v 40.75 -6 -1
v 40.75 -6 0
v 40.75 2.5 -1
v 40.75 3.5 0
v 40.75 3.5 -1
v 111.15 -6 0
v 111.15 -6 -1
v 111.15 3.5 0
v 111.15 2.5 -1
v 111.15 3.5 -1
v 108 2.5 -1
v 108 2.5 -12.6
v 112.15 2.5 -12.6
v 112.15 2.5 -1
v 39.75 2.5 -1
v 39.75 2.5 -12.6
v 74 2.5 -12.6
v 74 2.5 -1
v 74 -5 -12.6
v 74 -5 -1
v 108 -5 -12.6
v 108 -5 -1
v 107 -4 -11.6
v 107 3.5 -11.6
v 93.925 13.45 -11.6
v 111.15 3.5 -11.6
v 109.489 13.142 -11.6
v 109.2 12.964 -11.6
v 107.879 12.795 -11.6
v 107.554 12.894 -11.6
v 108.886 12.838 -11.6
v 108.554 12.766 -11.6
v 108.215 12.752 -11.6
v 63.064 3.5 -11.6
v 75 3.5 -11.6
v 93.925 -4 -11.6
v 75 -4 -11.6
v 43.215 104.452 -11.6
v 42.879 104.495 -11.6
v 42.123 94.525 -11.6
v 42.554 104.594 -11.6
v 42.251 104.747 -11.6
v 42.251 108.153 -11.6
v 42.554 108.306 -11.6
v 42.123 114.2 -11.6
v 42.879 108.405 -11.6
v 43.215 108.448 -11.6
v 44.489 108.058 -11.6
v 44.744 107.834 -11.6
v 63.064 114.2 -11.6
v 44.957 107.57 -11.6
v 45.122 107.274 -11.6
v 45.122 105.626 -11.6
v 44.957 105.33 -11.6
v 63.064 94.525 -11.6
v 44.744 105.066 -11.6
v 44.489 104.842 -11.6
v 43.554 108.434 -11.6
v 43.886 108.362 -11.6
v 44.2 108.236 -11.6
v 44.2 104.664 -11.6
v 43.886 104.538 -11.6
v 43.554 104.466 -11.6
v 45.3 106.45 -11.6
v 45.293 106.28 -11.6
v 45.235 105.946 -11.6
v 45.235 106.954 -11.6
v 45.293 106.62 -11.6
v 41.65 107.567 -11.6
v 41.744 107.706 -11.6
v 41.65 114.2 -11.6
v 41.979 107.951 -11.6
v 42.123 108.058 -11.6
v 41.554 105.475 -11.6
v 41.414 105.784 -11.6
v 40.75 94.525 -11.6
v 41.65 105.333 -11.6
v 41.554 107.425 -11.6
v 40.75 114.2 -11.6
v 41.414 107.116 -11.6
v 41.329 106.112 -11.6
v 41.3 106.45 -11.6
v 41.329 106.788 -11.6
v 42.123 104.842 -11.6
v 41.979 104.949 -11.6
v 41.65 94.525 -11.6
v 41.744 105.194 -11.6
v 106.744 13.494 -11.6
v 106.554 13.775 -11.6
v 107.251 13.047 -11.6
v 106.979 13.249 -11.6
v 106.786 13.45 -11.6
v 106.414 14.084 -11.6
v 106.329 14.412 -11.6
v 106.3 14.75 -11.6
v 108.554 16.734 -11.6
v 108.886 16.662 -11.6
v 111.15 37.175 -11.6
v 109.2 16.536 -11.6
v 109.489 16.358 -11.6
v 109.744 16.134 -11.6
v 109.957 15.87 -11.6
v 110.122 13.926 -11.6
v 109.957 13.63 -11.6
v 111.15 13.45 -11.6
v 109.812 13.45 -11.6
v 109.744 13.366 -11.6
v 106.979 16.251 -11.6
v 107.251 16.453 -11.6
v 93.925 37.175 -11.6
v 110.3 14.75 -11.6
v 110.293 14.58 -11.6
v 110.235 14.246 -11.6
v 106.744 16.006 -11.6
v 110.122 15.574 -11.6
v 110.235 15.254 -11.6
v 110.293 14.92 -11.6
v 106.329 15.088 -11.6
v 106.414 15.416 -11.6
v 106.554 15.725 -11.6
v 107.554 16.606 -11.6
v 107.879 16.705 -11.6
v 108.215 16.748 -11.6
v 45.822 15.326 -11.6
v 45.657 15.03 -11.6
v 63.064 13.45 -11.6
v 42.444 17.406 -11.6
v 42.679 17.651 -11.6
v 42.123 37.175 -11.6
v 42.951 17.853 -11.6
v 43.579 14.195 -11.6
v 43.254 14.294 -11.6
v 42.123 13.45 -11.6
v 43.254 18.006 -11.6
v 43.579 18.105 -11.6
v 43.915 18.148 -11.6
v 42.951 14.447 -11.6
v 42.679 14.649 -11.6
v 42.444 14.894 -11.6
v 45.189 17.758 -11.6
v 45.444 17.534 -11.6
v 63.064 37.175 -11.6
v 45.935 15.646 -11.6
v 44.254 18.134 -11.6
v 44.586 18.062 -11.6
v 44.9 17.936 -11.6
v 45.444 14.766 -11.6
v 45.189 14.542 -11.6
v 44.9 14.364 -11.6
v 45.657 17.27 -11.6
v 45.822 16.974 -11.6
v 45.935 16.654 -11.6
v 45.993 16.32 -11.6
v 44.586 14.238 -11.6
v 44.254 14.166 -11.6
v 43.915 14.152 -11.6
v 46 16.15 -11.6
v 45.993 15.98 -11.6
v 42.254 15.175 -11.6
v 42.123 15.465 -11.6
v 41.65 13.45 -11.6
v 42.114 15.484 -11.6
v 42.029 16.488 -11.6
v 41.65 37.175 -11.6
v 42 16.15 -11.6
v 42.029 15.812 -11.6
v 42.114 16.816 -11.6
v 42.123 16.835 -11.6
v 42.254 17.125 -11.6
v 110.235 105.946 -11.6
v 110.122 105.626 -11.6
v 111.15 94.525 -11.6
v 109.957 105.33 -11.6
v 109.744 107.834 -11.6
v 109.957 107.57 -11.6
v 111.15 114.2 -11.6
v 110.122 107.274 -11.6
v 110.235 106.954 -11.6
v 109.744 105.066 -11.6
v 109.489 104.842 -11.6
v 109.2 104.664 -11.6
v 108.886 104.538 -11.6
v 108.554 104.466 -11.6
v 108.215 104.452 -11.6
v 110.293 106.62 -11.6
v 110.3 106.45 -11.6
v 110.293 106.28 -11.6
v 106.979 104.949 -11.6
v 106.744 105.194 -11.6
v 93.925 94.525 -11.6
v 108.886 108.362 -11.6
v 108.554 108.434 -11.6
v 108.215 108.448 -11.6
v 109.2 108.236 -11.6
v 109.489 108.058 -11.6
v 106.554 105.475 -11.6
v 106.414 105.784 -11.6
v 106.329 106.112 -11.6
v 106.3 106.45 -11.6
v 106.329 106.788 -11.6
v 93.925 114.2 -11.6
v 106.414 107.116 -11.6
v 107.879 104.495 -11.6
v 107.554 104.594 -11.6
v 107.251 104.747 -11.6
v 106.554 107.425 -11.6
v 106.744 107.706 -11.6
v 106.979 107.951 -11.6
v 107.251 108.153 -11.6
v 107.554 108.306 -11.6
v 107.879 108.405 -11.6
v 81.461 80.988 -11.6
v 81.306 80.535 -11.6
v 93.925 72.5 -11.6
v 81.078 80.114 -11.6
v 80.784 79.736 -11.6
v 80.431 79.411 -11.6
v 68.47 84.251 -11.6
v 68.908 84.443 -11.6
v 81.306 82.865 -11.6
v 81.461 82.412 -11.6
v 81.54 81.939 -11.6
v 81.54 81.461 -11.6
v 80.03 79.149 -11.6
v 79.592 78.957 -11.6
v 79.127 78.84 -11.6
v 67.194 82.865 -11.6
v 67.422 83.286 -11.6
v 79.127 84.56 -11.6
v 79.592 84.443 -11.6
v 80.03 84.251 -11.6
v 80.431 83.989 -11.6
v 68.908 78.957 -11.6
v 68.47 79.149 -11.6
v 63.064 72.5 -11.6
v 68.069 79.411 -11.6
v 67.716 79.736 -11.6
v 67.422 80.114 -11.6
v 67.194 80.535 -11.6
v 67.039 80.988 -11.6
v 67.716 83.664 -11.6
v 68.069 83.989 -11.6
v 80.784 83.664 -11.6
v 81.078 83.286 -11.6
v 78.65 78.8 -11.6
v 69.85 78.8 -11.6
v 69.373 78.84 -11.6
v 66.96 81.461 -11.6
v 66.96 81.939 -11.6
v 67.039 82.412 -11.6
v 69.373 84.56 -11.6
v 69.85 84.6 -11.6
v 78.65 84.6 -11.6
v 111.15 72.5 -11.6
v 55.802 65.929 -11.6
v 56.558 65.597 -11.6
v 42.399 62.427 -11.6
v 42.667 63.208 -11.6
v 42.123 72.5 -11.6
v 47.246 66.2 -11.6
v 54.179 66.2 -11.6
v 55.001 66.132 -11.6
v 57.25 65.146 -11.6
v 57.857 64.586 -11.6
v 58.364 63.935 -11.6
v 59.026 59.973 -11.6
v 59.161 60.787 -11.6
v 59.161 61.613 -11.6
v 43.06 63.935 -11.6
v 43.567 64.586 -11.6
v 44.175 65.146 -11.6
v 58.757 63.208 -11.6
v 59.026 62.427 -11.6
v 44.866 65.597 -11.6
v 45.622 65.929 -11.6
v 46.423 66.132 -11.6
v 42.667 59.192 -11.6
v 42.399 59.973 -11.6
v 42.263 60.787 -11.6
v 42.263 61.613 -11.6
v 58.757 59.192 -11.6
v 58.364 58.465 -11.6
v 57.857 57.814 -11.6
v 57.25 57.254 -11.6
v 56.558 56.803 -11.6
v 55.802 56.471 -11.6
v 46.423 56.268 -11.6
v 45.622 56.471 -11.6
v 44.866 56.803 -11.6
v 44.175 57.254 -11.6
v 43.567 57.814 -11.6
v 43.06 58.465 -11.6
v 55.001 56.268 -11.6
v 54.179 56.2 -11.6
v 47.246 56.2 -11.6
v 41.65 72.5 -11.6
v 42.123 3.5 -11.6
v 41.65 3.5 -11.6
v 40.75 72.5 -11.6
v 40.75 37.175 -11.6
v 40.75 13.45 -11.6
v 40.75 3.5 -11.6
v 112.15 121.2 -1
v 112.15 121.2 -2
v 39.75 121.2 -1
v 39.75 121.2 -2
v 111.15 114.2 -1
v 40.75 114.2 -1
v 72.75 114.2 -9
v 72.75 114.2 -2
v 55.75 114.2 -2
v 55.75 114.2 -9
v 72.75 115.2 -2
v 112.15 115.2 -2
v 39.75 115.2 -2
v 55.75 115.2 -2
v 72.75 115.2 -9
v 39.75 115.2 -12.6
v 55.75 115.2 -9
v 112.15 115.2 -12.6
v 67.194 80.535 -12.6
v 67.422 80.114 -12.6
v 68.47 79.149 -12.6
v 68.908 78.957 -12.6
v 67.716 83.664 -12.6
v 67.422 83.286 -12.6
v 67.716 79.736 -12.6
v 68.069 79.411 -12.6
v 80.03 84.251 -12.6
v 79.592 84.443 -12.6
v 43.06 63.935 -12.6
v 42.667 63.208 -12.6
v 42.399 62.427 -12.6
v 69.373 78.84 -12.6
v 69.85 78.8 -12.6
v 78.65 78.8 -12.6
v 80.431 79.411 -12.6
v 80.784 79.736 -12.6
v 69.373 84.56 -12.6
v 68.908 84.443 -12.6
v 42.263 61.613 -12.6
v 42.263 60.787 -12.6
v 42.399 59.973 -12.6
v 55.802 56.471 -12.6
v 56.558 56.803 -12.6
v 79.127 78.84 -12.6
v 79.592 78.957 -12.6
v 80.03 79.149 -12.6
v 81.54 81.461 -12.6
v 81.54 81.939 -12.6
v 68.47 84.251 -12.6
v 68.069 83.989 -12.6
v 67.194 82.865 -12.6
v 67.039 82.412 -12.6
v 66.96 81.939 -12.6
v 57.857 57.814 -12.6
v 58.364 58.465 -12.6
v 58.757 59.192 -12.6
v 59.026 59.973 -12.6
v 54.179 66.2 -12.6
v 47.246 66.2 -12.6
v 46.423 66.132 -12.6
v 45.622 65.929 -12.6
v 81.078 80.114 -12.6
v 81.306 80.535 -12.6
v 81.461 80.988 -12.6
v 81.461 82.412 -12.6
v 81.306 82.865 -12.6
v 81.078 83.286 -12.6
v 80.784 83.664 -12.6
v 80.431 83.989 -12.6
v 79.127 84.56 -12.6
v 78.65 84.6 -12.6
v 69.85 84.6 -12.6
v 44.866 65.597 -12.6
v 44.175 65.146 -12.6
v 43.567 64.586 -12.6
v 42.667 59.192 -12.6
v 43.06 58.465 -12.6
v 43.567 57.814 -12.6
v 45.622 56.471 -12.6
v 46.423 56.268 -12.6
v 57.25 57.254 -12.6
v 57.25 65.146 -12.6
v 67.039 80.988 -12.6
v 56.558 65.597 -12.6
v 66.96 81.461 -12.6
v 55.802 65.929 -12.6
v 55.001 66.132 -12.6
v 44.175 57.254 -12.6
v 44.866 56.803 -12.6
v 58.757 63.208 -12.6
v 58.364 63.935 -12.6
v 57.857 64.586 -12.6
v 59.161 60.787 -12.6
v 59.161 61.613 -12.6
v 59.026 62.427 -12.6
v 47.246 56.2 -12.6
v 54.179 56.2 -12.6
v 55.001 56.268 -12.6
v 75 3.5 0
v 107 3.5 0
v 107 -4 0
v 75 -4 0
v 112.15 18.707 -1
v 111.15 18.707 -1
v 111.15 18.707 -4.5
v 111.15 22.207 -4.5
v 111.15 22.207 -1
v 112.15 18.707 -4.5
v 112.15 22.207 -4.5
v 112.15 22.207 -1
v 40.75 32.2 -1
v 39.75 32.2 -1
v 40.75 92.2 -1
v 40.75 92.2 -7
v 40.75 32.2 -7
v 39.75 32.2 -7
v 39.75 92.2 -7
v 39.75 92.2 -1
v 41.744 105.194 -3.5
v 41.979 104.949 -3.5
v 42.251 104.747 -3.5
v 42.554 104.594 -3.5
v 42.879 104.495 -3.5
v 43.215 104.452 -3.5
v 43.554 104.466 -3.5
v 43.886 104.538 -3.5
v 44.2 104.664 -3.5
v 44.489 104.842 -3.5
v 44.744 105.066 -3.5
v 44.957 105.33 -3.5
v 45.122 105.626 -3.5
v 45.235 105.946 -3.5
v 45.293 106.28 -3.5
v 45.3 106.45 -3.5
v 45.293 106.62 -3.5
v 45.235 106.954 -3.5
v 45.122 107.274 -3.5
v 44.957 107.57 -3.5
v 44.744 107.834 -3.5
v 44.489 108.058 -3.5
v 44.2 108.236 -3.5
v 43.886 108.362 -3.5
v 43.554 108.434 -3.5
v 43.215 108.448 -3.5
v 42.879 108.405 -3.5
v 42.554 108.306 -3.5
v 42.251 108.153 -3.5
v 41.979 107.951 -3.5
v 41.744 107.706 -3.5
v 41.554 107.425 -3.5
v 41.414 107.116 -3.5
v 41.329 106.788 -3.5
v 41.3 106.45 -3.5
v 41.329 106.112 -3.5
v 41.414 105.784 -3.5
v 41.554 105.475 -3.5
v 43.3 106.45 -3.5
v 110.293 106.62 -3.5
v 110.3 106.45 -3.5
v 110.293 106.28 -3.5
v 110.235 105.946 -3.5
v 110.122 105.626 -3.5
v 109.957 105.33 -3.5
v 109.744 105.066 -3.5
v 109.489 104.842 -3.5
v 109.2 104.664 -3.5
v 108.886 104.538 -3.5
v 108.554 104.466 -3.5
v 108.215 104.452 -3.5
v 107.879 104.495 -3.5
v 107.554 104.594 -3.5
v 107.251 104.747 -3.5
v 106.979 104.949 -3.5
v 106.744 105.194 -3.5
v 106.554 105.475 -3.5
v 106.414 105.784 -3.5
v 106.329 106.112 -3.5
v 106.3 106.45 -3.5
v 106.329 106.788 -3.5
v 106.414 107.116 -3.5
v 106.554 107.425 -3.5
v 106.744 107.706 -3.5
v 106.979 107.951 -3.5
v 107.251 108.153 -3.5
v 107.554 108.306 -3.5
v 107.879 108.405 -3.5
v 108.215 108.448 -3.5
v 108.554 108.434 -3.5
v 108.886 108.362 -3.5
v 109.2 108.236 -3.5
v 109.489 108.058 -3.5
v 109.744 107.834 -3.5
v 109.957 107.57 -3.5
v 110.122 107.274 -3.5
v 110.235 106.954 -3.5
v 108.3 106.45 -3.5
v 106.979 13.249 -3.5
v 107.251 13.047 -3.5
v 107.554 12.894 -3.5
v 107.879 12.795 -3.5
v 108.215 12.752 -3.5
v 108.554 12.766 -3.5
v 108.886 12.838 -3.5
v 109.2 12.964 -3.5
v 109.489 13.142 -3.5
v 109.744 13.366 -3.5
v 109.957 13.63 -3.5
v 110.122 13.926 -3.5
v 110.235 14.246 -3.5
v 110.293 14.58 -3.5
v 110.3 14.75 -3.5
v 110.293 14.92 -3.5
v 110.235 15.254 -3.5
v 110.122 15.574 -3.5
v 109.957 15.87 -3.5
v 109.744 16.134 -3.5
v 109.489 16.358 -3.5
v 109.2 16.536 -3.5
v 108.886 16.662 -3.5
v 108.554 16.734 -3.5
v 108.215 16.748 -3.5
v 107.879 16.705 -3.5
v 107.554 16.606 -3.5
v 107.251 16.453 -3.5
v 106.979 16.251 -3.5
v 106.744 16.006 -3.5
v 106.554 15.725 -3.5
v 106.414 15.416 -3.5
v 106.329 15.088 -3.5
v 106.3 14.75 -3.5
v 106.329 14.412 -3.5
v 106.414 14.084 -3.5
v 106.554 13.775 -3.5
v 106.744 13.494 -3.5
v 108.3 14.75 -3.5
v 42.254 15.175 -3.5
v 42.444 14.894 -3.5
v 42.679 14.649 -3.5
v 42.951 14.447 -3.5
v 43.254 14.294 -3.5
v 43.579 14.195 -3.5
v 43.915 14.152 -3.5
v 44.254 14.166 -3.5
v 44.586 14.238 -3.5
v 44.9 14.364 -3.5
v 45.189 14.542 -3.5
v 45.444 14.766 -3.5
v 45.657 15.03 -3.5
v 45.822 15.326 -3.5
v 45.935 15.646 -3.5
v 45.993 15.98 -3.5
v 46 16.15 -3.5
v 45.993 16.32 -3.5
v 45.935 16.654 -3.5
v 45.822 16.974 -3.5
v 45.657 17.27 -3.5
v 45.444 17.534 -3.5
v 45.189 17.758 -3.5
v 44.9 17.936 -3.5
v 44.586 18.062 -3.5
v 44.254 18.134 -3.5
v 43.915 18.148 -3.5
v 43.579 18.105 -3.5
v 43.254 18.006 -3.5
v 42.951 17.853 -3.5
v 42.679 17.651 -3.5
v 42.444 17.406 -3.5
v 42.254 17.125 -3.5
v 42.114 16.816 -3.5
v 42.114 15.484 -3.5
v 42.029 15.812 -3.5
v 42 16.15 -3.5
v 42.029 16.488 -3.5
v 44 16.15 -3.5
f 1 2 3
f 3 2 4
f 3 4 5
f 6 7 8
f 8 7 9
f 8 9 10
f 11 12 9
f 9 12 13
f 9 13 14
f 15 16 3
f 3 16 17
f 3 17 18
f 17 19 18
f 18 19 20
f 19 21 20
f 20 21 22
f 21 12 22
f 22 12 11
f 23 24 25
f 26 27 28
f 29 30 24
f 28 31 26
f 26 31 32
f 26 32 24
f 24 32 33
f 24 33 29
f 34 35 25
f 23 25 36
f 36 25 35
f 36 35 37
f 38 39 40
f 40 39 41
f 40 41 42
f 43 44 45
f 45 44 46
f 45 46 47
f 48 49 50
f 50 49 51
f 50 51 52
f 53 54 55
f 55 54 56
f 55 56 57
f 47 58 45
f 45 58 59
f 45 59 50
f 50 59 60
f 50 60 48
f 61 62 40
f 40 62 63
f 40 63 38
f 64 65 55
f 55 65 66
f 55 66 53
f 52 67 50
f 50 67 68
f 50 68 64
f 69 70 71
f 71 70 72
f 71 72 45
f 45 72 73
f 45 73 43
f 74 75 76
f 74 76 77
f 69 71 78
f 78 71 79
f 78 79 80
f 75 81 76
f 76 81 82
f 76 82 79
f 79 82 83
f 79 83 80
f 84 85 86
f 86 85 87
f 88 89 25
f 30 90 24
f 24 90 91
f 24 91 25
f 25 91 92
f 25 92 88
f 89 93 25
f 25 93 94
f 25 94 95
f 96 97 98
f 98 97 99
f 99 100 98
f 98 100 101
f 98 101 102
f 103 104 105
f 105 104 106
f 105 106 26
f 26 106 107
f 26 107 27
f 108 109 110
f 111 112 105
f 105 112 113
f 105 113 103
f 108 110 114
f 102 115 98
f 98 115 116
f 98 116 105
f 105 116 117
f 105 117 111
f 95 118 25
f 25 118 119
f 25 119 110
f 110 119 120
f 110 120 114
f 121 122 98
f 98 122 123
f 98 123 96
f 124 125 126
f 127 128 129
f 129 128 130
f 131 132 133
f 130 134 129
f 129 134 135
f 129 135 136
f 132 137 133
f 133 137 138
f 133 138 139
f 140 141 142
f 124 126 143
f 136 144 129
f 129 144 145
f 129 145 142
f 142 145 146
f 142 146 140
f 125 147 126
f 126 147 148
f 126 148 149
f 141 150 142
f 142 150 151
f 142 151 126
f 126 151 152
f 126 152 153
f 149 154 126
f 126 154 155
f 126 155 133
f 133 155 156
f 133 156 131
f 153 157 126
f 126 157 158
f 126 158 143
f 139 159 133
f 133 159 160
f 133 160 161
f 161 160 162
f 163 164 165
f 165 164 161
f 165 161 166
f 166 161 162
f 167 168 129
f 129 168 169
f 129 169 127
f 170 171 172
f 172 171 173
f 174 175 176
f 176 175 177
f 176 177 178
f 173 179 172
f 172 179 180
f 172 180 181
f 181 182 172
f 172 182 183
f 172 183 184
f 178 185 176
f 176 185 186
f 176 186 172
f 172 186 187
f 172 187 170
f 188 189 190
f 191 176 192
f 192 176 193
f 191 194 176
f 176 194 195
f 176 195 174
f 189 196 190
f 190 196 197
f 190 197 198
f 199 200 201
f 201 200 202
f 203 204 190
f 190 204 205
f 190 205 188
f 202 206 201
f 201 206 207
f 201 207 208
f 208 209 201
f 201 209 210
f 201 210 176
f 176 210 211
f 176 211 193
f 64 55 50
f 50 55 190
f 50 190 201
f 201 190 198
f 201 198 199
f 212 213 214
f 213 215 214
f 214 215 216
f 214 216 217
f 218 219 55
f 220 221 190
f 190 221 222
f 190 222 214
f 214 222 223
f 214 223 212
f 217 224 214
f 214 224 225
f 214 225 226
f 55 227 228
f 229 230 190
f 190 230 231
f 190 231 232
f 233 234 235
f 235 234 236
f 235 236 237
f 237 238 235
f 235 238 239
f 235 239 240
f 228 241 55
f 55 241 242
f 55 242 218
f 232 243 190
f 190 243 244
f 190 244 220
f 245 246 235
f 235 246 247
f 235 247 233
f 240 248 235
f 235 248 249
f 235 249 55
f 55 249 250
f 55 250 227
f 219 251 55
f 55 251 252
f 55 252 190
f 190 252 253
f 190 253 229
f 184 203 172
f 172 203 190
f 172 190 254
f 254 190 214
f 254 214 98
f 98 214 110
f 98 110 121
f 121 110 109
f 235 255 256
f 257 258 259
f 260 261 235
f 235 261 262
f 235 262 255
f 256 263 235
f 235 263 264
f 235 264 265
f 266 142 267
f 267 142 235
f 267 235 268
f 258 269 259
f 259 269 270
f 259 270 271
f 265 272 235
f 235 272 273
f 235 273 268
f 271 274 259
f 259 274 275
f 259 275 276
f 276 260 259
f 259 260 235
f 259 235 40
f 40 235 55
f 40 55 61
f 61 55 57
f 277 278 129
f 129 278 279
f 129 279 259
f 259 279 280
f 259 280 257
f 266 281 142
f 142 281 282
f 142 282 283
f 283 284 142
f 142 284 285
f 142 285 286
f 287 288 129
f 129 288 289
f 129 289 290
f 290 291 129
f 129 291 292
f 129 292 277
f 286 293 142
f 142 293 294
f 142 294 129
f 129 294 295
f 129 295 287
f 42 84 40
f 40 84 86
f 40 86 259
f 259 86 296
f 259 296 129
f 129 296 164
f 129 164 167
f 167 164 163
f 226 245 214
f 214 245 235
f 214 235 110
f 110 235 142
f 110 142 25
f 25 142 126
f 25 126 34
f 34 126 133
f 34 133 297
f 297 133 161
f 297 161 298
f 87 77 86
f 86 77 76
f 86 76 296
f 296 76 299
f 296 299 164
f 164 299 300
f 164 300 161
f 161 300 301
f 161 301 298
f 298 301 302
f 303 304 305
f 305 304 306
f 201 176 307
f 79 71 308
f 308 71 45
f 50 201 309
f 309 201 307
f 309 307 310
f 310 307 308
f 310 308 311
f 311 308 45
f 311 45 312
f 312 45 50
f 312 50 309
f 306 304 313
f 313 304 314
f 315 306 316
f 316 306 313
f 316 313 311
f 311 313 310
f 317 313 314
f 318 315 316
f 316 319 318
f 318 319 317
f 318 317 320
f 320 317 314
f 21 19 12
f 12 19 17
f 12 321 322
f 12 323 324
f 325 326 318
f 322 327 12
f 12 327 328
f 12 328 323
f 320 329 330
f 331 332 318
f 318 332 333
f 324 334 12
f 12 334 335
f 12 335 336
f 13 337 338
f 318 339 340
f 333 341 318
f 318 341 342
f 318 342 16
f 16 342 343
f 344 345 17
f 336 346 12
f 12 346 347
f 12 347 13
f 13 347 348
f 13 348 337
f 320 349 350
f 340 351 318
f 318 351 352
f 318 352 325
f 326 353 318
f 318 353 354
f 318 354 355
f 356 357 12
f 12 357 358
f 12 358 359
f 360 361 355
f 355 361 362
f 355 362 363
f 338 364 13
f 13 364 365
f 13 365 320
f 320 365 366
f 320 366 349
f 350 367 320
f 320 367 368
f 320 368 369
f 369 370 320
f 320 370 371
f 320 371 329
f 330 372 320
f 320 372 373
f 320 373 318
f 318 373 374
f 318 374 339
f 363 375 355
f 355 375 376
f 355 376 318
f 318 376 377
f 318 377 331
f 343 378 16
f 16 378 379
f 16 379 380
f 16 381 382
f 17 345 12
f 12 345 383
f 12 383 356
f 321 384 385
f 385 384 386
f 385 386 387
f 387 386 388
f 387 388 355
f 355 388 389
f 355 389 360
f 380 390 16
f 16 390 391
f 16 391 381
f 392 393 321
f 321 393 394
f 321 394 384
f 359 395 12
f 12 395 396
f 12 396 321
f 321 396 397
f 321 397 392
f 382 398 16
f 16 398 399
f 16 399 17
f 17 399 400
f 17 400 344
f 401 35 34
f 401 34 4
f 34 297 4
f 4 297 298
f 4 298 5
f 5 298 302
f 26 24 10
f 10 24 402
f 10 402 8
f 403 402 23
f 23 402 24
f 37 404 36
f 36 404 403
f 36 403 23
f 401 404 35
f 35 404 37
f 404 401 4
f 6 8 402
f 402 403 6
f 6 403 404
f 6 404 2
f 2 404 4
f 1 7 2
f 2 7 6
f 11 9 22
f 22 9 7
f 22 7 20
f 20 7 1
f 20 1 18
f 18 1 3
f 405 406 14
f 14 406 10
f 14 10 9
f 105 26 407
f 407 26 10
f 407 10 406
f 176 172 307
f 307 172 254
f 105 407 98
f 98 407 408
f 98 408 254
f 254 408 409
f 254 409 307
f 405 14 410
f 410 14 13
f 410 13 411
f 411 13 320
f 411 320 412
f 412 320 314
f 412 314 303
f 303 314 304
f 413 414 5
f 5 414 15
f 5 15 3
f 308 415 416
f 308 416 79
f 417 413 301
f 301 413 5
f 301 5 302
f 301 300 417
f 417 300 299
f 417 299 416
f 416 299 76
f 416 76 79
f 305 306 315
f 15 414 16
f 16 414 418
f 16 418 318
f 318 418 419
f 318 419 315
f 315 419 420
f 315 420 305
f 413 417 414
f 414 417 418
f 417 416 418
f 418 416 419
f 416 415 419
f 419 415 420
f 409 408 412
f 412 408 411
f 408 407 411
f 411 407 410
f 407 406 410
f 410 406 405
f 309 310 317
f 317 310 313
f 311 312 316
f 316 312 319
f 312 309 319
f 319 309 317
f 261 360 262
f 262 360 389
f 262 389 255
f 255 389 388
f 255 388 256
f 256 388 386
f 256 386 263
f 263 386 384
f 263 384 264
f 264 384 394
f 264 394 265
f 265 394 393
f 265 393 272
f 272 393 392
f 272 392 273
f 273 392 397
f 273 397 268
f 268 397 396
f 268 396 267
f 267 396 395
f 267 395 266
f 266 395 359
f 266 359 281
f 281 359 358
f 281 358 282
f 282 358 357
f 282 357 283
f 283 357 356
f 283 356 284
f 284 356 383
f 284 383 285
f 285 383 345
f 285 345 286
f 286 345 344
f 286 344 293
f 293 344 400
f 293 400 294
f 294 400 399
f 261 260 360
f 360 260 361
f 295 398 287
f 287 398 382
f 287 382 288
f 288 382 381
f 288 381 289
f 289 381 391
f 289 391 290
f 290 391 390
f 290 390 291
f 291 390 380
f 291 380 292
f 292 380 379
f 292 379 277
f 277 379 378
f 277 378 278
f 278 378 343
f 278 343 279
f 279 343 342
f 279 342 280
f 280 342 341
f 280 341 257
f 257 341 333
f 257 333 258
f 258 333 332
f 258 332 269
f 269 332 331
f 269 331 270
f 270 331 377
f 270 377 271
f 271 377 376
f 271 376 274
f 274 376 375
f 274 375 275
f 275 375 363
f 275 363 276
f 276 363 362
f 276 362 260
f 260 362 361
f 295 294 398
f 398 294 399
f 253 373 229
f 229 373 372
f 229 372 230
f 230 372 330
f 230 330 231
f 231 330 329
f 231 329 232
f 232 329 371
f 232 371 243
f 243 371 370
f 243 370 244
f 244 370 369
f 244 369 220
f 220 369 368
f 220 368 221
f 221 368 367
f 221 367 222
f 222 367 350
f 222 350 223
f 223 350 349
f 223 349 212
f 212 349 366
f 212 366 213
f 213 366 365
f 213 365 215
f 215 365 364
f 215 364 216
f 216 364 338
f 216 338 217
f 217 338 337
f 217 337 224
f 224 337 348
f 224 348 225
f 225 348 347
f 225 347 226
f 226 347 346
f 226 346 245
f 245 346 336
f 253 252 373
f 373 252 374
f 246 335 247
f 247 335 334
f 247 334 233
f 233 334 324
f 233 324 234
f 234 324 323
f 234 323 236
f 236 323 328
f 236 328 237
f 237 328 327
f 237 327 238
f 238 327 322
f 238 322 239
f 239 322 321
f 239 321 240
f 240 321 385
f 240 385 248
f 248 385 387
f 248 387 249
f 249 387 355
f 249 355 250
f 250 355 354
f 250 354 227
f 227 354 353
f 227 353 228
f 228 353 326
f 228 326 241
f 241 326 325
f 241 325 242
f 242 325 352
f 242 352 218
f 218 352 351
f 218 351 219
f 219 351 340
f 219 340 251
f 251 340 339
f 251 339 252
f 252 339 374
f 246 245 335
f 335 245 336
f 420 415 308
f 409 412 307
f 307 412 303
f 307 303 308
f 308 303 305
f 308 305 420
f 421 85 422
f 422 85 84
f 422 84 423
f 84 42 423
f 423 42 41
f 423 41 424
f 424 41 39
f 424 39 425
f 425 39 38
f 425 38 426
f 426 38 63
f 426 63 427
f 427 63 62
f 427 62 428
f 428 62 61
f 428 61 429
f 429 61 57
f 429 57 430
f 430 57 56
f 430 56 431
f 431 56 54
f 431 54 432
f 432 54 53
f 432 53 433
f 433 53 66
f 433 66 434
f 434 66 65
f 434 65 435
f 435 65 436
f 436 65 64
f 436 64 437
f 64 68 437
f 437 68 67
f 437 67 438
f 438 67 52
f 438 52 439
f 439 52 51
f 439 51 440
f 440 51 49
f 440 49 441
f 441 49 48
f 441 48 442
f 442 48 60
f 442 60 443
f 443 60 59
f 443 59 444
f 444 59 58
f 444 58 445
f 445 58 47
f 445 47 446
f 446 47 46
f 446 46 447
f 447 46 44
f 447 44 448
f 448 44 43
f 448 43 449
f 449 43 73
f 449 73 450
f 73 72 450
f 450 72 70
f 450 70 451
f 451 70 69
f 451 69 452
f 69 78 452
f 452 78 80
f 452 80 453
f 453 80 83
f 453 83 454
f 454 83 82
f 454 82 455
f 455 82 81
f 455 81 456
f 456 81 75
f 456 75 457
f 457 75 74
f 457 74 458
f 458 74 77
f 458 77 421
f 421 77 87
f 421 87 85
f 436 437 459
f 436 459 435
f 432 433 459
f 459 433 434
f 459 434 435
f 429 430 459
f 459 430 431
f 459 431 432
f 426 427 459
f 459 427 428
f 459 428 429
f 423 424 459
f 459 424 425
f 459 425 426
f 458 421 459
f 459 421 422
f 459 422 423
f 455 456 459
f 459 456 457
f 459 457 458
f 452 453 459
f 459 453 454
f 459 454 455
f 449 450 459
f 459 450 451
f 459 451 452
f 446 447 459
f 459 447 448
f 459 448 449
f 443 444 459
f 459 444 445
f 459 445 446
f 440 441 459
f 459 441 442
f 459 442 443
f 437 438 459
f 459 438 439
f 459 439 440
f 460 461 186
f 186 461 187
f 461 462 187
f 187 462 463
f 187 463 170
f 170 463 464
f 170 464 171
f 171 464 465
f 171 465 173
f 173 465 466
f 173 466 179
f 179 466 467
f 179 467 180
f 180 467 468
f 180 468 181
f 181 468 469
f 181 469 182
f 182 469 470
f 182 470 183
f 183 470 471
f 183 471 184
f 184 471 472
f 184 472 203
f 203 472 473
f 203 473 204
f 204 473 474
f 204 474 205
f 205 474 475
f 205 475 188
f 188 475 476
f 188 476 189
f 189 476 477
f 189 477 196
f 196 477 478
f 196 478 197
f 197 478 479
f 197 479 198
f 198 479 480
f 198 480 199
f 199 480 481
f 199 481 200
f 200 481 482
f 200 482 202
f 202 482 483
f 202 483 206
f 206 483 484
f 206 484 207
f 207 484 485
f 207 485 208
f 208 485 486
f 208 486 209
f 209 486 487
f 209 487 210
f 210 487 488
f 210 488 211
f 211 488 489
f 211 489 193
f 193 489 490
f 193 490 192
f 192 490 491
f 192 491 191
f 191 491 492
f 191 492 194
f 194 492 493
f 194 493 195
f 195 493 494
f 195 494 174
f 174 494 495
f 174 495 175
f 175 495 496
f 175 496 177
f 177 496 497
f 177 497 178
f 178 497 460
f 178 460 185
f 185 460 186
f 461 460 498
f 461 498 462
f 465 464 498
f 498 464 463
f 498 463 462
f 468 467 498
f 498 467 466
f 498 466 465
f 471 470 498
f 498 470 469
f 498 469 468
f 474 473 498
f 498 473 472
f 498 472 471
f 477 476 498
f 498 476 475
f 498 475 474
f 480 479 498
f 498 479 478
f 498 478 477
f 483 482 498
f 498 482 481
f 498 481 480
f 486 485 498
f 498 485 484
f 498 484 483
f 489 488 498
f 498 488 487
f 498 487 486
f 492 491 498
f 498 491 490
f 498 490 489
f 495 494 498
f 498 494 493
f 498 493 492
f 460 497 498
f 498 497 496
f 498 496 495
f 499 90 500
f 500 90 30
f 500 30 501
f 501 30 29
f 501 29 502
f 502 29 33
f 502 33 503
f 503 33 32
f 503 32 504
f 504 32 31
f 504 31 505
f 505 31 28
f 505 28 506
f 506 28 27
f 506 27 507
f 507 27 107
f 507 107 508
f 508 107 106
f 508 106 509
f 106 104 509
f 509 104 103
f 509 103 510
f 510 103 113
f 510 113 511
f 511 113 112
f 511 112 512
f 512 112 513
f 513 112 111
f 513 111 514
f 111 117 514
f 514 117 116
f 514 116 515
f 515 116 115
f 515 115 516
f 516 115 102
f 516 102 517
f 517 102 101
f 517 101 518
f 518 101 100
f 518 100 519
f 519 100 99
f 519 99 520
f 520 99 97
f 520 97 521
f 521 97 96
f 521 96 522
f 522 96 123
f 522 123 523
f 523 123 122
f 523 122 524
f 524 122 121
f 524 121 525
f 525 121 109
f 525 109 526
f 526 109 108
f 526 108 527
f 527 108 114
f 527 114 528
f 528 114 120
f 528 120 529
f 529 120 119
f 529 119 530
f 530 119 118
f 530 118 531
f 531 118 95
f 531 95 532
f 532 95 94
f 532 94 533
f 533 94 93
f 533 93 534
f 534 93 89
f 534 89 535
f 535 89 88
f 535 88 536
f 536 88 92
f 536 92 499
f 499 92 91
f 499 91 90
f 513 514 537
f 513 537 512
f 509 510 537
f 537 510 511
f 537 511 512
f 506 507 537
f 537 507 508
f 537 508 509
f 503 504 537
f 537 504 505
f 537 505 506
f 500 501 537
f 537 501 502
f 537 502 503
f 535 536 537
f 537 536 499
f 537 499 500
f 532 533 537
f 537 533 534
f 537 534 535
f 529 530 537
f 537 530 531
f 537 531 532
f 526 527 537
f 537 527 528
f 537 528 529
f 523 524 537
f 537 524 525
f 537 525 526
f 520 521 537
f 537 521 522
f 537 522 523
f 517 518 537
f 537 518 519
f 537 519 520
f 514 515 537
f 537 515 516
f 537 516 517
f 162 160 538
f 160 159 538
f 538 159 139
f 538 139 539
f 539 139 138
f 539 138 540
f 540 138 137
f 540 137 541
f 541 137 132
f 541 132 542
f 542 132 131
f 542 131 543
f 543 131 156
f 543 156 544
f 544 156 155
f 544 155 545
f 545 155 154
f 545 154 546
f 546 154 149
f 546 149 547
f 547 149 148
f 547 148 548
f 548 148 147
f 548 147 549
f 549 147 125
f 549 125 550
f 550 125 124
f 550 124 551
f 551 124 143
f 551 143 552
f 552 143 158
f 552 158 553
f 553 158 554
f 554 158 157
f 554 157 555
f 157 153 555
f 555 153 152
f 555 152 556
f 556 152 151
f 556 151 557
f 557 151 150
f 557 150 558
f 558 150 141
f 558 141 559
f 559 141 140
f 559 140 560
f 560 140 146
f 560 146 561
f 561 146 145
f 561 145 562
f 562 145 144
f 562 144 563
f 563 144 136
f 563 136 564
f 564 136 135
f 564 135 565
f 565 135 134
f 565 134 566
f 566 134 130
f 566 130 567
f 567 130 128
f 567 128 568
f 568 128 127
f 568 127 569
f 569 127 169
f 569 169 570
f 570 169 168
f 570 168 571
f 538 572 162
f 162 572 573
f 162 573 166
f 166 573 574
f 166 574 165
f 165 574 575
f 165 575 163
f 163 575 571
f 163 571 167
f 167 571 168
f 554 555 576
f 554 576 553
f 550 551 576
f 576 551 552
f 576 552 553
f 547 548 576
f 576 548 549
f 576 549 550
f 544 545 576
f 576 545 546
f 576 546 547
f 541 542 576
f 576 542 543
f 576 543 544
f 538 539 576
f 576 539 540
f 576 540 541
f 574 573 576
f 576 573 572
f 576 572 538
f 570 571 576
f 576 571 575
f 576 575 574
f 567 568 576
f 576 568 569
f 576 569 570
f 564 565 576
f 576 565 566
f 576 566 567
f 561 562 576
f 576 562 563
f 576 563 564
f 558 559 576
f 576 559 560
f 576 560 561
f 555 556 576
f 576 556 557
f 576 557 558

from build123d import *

# Parameters (mm, degrees)
ESBO_O1_W                     = 170.2
ESBO_O1_H                     = 111.2
RESSALTO_EXTRUS_O1_DEPTH      = 0.9
ESBO_O4_W                     = 176.2
ESBO_O4_H                     = 117.2
RESSALTO_EXTRUS_O3_DEPTH      = 1
ESBO_O5_W                     = 32
ESBO_O5_H                     = 1.9
CORTE_EXTRUS_O3_DEPTH         = 5
ESBO_O7_W                     = 70.4
ESBO_O7_H                     = 6
ESBO_O7_H_2                   = 1
RESSALTO_EXTRUS_O4_DEPTH      = 1
ESBO_O7_3_W                   = 70.4
ESBO_O7_3_H                   = 1
RESSALTO_EXTRUS_O5_DEPTH      = 11.6
RESSALTO_EXTRUS_O6_START      = 11.6
RESSALTO_EXTRUS_O6_DEPTH      = 1
RESSALTO_EXTRUS_O7_DEPTH      = 11.6
RESSALTO_EXTRUS_O7_DEPTH_BACK = 1
RESSALTO_EXTRUS_O8_START      = -1
RESSALTO_EXTRUS_O8_DEPTH      = 1
RESSALTO_EXTRUS_O9_DEPTH      = 1
RESSALTO_EXTRUS_O10_DEPTH     = 1
ESBO_O11_W                    = 6
ESBO_O11_H                    = 60
CORTE_EXTRUS_O4_DEPTH         = 1
ESBO_O12_W                    = 3.5
ESBO_O12_H                    = 3.5
CORTE_EXTRUS_O5_DEPTH         = 1
ESBO_O13_W                    = 17
ESBO_O13_H                    = 7
CORTE_EXTRUS_O6_DEPTH         = 1
CORTE_EXTRUS_O7_DEPTH         = 1
CORTE_EXTRUS_O8_DEPTH         = 1
CORTE_EXTRUS_O9_DEPTH         = 215.230343322
CORTE_EXTRUS_O9_DEPTH_BACK    = 215.230343322
ESBO_O17_W                    = 40.80761737
ESBO_O17_H                    = 153.828822039
ESBO_O18_R                    = 2
RESSALTO_EXTRUS_O11_DEPTH     = 8.1


with BuildPart() as part:
    # Esboço1 → Ressalto-extrusão1 (new body)
    with BuildSketch(Plane.XY):
        with Locations((91, 62.6)):
            Rectangle(ESBO_O1_W, ESBO_O1_H)
    extrude(amount=RESSALTO_EXTRUS_O1_DEPTH)

    # Esboço4 → Ressalto-extrusão3 (add)
    with BuildSketch(Plane(origin=(0, 0, 0), x_dir=(-1, 0, 0), z_dir=(0, 0, -1))):
        with Locations((-91, 62.6)):
            Rectangle(ESBO_O4_W, ESBO_O4_H)
    extrude(amount=RESSALTO_EXTRUS_O3_DEPTH)

    # Esboço5 → Corte-extrusão3 (cut)
    with BuildSketch(Plane.XZ.offset(-4)):
        with Locations((91, -0.05)):
            Rectangle(ESBO_O5_W, ESBO_O5_H)
    extrude(amount=-CORTE_EXTRUS_O3_DEPTH, mode=Mode.SUBTRACT)

    # Esboço7 → Ressalto-extrusão4 (add)
    with BuildSketch(Plane(origin=(0, 0, -1), x_dir=(-1, 0, 0), z_dir=(0, 0, -1))):
        with Locations((-75.95, 118.2)):
            Rectangle(ESBO_O7_W, ESBO_O7_H)
        with Locations((-75.95, 114.7)):
            Rectangle(ESBO_O7_W, ESBO_O7_H_2)
    extrude(amount=RESSALTO_EXTRUS_O4_DEPTH)

    # Esboço7<3> → Ressalto-extrusão5 (add)
    with BuildSketch(Plane(origin=(0, 0, -1), x_dir=(-1, 0, 0), z_dir=(0, 0, -1))):
        with Locations((-75.95, 114.7)):
            Rectangle(ESBO_O7_3_W, ESBO_O7_3_H)
    extrude(amount=RESSALTO_EXTRUS_O5_DEPTH)

    # Esboço7<4> → Ressalto-extrusão6 (add)
    with BuildSketch(Plane(origin=(0, 0, -1), x_dir=(-1, 0, 0), z_dir=(0, 0, -1)).offset(RESSALTO_EXTRUS_O6_START)):
        Polygon((-40.75, 114.2), (-111.15, 114.2), (-111.15, 4), (-107, 4), (-107, 9), (-75, 9), (-75, 4), (-40.75, 4), align=None)
        Polygon((-107, 4), (-111.15, 4), (-111.15, 3.5), (-107, 3.5), (-107, -4), (-75, -4), (-75, 3.5), (-40.75, 3.5), (-40.75, 4), (-75, 4), (-75, 9), (-107, 9), align=None)
        Polygon((-107, 3.5), (-111.15, 3.5), (-111.15, 2.5), (-108, 2.5), (-108, -5), (-74, -5), (-74, 2.5), (-40.75, 2.5), (-40.75, 3.5), (-75, 3.5), (-75, -4), (-107, -4), align=None)
    extrude(amount=-RESSALTO_EXTRUS_O6_DEPTH)

    # Esboço7<5> → Ressalto-extrusão7 (add, two sides: drawn at the far end of the back side and taken through both)
    with BuildSketch(Plane(origin=(0, 0, -1), x_dir=(-1, 0, 0), z_dir=(0, 0, -1)).offset(-RESSALTO_EXTRUS_O7_DEPTH_BACK)):
        Polygon((-107, 3.5), (-111.15, 3.5), (-111.15, 2.5), (-108, 2.5), (-108, -5), (-74, -5), (-74, 2.5), (-40.75, 2.5), (-40.75, 3.5), (-75, 3.5), (-75, -4), (-107, -4), align=None)
    extrude(amount=RESSALTO_EXTRUS_O7_DEPTH + RESSALTO_EXTRUS_O7_DEPTH_BACK)

    # Esboço7<6> → Ressalto-extrusão8 (add)
    with BuildSketch(Plane(origin=(0, 0, -1), x_dir=(-1, 0, 0), z_dir=(0, 0, -1)).offset(RESSALTO_EXTRUS_O8_START)):
        Polygon((-74, 2.5), (-40.75, 2.5), (-40.75, -6), (-111.15, -6), (-111.15, 2.5), (-108, 2.5), (-108, -5), (-74, -5), align=None)
    extrude(amount=RESSALTO_EXTRUS_O8_DEPTH)

    # Esboço8 → Ressalto-extrusão9 (add)
    with BuildSketch(Plane(origin=(111.15, 0, 0), x_dir=(0, 0, -1), z_dir=(1, 0, 0))):
        Polygon((1, 121.2), (2, 121.2), (2, 115.2), (12.6, 115.2), (12.6, 2.5), (1, 2.5), align=None)
    extrude(amount=RESSALTO_EXTRUS_O9_DEPTH)

    # Esboço9 → Ressalto-extrusão10 (add)
    with BuildSketch(Plane.ZY.offset(-40.75)):
        Polygon((-2, 121.2), (-1, 121.2), (-1, 2.5), (-12.6, 2.5), (-12.6, 115.2), (-2, 115.2), align=None)
    extrude(amount=RESSALTO_EXTRUS_O10_DEPTH)

    # Esboço11 → Corte-extrusão4 (cut)
    with BuildSketch(Plane.ZY.offset(-39.75)):
        with Locations((-4, 62.2)):
            Rectangle(ESBO_O11_W, ESBO_O11_H)
    extrude(amount=-CORTE_EXTRUS_O4_DEPTH, mode=Mode.SUBTRACT)

    # Esboço12 → Corte-extrusão5 (cut)
    with BuildSketch(Plane(origin=(112.15, 0, 0), x_dir=(0, 0, -1), z_dir=(1, 0, 0))):
        with Locations((2.75, 20.456846579)):
            Rectangle(ESBO_O12_W, ESBO_O12_H)
    extrude(amount=-CORTE_EXTRUS_O5_DEPTH, mode=Mode.SUBTRACT)

    # Esboço13 → Corte-extrusão6 (cut)
    with BuildSketch(Plane(origin=(0, 115.2, 0), x_dir=(1, 0, 0), z_dir=(0, 1, 0))):
        with Locations((64.25, 5.5)):
            Rectangle(ESBO_O13_W, ESBO_O13_H)
    extrude(amount=-CORTE_EXTRUS_O6_DEPTH, mode=Mode.SUBTRACT)

    # Esboço14 → Corte-extrusão7 (cut)
    with BuildSketch(Plane(origin=(0, 0, -12.6), x_dir=(-1, 0, 0), z_dir=(0, 0, -1))):
        with BuildLine():
            Line((-54.178505269, 66.2), (-47.245781338, 66.2))
            ThreePointArc((-47.245781338, 66.2), (-42.245781338, 61.2), (-47.245781338, 56.2))
            Line((-47.245781338, 56.2), (-54.178505269, 56.2))
            ThreePointArc((-54.178505269, 56.2), (-59.178505269, 61.2), (-54.178505269, 66.2))
        make_face()
    extrude(amount=-CORTE_EXTRUS_O7_DEPTH, mode=Mode.SUBTRACT)

    # Esboço15 → Corte-extrusão8 (cut)
    with BuildSketch(Plane(origin=(0, 0, -12.6), x_dir=(-1, 0, 0), z_dir=(0, 0, -1))):
        with BuildLine():
            Line((-78.65004231, 84.60004231), (-69.84995769, 84.60004231))
            ThreePointArc((-69.84995769, 84.60004231), (-66.949915379, 81.7), (-69.84995769, 78.79995769))
            Line((-69.84995769, 78.79995769), (-78.65004231, 78.79995769))
            ThreePointArc((-78.65004231, 78.79995769), (-81.550084621, 81.7), (-78.65004231, 84.60004231))
        make_face()
    extrude(amount=-CORTE_EXTRUS_O8_DEPTH, mode=Mode.SUBTRACT)

    # Esboço17 → Corte-extrusão9 (cut, two sides: drawn at the far end of the back side and taken through both)
    with BuildSketch(Plane(origin=(179.1, 0, 0), x_dir=(0, 0, -1), z_dir=(1, 0, 0)).offset(-CORTE_EXTRUS_O9_DEPTH_BACK)):
        with Locations((-19.403808685, 80.91441102)):
            Rectangle(ESBO_O17_W, ESBO_O17_H)
    extrude(amount=CORTE_EXTRUS_O9_DEPTH + CORTE_EXTRUS_O9_DEPTH_BACK, mode=Mode.SUBTRACT)

    # Esboço18 → Ressalto-extrusão11 (add)
    with BuildSketch(Plane.XY.offset(-11.6)):
        with Locations((43.3, 106.45)):
            Circle(ESBO_O18_R)
        with Locations((108.3, 106.45)):
            Circle(ESBO_O18_R)
        with Locations((108.3, 14.75)):
            Circle(ESBO_O18_R)
        with Locations((44, 16.15)):
            Circle(ESBO_O18_R)
    extrude(amount=RESSALTO_EXTRUS_O11_DEPTH)


solid = part.part
